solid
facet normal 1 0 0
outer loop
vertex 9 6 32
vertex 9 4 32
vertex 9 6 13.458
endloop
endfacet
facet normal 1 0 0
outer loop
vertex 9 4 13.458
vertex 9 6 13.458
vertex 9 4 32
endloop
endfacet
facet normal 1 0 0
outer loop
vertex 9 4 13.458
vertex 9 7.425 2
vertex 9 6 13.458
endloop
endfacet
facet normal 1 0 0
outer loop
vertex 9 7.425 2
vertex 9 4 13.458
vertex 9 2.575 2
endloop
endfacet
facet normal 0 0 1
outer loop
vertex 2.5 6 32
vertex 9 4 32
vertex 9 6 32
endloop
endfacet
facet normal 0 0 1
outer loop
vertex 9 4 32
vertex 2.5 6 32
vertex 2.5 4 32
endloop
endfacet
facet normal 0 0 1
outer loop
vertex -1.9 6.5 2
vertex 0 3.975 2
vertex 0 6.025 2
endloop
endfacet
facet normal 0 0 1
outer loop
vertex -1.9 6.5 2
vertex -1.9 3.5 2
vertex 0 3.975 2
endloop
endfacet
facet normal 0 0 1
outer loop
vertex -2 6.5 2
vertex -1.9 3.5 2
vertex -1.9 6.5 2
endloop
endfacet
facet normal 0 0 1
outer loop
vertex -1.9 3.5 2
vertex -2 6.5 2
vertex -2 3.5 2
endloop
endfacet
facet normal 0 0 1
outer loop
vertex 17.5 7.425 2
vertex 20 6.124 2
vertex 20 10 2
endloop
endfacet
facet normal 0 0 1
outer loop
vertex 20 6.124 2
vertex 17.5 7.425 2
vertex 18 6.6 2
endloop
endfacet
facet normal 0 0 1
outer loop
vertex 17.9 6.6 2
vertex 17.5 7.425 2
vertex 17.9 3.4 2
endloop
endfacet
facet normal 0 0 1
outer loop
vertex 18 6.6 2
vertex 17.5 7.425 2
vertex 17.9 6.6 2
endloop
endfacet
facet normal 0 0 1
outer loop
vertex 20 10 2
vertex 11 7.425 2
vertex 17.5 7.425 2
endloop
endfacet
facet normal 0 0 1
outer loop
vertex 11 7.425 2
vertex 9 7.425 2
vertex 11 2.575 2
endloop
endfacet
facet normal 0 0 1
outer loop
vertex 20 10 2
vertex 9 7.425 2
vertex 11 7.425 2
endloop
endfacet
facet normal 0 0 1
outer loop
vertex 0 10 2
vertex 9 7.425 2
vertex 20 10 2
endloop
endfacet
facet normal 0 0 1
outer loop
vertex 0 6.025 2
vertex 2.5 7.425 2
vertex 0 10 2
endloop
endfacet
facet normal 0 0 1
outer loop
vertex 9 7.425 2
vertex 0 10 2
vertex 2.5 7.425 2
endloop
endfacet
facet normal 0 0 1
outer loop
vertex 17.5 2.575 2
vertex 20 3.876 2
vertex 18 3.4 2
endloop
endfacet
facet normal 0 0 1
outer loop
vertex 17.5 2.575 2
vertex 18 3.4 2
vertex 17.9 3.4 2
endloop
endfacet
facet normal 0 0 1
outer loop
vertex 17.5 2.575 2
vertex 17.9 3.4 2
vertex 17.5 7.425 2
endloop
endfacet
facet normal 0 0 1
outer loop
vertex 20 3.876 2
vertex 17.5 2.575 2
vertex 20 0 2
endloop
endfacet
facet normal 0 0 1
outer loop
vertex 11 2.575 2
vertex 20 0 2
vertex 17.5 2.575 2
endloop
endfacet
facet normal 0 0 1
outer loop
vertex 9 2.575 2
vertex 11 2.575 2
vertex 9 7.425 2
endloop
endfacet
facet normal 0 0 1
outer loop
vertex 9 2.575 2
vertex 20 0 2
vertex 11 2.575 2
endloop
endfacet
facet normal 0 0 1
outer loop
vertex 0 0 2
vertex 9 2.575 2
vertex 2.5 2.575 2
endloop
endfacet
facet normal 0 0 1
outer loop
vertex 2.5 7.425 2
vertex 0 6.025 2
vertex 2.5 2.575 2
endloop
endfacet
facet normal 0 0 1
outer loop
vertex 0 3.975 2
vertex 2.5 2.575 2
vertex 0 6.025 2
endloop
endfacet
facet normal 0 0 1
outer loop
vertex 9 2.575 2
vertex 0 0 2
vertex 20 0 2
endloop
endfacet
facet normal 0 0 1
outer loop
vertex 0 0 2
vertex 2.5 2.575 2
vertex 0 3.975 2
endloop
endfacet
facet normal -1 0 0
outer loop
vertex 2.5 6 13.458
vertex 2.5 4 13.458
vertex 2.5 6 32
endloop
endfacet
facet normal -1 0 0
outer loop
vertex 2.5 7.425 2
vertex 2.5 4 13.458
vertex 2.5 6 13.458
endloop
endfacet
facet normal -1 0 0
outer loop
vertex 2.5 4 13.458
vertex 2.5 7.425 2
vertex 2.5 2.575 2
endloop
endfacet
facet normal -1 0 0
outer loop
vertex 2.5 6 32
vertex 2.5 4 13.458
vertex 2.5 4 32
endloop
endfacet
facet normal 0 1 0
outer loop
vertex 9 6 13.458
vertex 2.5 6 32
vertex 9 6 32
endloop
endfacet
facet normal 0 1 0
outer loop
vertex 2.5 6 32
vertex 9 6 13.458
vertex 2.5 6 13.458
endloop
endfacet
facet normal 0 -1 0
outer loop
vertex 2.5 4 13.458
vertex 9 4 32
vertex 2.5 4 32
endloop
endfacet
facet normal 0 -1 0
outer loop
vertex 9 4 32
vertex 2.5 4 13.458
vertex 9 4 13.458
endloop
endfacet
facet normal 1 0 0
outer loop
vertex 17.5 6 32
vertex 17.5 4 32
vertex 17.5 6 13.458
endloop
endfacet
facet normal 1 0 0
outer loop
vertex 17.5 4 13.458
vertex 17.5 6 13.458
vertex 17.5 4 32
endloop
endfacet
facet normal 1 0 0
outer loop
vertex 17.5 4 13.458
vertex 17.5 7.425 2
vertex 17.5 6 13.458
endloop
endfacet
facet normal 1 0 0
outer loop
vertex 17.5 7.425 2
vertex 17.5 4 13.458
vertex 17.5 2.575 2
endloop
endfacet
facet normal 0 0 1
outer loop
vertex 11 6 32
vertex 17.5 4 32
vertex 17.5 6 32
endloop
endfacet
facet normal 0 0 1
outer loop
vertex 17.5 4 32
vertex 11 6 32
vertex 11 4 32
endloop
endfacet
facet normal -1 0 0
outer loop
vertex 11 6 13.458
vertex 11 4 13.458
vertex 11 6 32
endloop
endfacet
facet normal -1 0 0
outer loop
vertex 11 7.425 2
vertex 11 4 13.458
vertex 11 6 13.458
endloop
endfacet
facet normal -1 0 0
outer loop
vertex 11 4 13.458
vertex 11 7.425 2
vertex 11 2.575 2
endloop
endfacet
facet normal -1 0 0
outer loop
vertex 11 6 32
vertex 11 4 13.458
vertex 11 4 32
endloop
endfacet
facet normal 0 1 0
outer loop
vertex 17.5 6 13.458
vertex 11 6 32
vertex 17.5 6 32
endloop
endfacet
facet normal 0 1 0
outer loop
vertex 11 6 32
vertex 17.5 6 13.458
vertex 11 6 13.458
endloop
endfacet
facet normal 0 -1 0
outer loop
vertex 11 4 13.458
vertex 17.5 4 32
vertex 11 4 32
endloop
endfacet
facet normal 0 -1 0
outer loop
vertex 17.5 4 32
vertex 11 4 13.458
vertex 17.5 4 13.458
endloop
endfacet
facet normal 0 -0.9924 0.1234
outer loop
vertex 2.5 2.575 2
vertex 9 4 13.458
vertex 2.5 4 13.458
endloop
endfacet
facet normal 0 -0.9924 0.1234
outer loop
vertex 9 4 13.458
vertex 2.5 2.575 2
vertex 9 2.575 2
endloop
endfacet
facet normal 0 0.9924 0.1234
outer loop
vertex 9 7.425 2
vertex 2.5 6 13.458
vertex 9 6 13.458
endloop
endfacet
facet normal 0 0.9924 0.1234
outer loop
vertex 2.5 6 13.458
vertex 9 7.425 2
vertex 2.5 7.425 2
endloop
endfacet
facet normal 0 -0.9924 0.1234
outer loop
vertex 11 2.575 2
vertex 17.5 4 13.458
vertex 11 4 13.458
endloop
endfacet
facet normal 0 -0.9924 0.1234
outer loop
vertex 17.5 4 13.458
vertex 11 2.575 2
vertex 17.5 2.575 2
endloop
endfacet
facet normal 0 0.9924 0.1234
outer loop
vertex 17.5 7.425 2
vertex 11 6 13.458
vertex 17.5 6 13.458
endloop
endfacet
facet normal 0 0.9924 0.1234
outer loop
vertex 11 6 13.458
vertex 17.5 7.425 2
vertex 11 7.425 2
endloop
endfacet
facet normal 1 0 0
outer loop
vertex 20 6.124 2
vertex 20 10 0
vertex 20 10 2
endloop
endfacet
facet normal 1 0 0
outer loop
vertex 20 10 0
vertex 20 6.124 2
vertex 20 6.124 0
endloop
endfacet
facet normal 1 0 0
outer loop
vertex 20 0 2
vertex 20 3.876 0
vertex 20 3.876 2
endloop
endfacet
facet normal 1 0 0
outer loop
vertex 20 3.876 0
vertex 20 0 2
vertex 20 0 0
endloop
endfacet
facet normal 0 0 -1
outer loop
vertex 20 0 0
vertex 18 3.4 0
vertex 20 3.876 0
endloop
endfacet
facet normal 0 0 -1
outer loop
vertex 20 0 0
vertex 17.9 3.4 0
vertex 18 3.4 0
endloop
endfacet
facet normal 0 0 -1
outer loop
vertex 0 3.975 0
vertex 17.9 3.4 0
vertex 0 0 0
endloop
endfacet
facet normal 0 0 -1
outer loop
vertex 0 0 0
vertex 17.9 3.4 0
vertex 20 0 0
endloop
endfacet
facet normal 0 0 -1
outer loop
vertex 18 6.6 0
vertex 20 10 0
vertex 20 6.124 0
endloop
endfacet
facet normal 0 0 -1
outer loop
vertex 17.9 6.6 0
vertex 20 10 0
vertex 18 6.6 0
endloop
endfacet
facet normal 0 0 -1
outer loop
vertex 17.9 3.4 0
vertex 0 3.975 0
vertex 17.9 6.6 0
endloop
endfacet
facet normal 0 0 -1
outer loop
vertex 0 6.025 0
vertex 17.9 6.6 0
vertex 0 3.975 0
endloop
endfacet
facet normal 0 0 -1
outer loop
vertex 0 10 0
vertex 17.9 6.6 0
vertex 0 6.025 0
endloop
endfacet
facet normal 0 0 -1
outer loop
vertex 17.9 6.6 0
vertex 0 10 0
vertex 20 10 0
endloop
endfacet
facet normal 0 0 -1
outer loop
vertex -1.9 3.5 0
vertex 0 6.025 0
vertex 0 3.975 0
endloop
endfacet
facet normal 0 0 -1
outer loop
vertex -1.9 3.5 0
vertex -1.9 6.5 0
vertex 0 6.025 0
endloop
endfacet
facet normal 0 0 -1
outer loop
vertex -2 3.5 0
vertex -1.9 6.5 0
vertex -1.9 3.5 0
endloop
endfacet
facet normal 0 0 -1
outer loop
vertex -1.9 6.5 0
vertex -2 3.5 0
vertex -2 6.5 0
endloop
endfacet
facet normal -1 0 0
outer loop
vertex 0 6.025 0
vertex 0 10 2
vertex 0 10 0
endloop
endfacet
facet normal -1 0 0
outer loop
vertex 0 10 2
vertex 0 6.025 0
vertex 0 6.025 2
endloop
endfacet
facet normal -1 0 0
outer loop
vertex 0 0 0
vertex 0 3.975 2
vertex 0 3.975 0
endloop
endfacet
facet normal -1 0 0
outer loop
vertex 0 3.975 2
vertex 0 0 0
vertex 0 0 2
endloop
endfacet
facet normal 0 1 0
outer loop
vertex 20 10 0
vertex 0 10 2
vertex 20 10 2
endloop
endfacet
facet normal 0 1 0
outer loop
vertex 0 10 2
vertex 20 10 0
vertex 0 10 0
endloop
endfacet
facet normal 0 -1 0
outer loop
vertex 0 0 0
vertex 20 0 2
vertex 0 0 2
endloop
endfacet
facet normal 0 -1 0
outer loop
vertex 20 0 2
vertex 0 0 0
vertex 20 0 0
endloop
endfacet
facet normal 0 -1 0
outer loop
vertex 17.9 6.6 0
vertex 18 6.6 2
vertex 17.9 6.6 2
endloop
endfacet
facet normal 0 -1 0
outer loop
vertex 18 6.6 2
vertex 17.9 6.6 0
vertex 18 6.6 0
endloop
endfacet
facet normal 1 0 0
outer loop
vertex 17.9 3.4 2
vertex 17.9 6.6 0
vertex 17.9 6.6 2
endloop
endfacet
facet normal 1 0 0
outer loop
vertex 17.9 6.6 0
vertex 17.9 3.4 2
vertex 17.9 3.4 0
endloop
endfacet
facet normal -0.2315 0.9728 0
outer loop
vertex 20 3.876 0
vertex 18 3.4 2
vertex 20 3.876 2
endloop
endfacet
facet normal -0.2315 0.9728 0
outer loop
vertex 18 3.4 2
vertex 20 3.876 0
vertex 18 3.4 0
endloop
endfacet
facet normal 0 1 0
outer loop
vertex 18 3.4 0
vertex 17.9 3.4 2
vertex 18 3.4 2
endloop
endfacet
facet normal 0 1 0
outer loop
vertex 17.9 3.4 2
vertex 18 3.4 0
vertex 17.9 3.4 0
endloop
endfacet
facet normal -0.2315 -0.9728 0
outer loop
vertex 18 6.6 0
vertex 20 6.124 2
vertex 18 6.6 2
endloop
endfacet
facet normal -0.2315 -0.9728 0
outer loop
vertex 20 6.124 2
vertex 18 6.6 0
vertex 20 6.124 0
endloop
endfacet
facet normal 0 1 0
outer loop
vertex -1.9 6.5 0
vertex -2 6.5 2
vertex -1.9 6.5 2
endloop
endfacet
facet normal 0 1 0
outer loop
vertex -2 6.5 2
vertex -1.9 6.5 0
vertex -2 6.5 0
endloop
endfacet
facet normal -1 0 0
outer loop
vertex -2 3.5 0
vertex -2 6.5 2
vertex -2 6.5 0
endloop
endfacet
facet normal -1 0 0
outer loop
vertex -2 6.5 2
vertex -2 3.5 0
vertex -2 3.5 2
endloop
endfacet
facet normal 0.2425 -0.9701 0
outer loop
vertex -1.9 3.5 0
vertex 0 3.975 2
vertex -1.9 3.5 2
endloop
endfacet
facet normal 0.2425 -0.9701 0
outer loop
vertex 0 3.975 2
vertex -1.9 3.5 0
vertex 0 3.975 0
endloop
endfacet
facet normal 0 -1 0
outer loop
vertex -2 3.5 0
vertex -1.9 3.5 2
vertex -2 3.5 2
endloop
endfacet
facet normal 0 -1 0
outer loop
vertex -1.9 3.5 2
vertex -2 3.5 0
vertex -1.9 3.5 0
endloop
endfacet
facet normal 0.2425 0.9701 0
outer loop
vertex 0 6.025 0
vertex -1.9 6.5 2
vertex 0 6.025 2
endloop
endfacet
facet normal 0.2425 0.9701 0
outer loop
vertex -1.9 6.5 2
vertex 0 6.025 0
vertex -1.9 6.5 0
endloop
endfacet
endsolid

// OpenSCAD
echo(version=version());

// main
translate([0, 2.5, 0]) {
    translate([2.5, 1.5, 2]) cube([6.5, 2, 30]);
    translate([11, 1.5, 2]) cube([6.5, 2, 30]);

    translate([2.5, 2.5, 8.5]) scale([1, 2.8, 13]) rotate([90, 30, 90]) cylinder(h=6.5, r=1, center=false, $fn=3);
    translate([11, 2.5, 8.5]) scale([1, 2.8, 13]) rotate([90, 30, 90]) cylinder(h=6.5, r=1, center=false, $fn=3);
}

// base
difference(){
    cube([20, 10, 2]);
    translate([20, 3.9, 0]) {
        hull(){
            cube([0.1,2.2,2]);
            translate([-2.1, -0.5, 0]) cube([0.1,3.2,2]);
        }
    }
}

translate([0, 4, 0]) {
    hull(){
        cube([0.1,2,2]);
        translate([-2, -0.5, 0]) cube([0.1,3,2]);
    }
}
